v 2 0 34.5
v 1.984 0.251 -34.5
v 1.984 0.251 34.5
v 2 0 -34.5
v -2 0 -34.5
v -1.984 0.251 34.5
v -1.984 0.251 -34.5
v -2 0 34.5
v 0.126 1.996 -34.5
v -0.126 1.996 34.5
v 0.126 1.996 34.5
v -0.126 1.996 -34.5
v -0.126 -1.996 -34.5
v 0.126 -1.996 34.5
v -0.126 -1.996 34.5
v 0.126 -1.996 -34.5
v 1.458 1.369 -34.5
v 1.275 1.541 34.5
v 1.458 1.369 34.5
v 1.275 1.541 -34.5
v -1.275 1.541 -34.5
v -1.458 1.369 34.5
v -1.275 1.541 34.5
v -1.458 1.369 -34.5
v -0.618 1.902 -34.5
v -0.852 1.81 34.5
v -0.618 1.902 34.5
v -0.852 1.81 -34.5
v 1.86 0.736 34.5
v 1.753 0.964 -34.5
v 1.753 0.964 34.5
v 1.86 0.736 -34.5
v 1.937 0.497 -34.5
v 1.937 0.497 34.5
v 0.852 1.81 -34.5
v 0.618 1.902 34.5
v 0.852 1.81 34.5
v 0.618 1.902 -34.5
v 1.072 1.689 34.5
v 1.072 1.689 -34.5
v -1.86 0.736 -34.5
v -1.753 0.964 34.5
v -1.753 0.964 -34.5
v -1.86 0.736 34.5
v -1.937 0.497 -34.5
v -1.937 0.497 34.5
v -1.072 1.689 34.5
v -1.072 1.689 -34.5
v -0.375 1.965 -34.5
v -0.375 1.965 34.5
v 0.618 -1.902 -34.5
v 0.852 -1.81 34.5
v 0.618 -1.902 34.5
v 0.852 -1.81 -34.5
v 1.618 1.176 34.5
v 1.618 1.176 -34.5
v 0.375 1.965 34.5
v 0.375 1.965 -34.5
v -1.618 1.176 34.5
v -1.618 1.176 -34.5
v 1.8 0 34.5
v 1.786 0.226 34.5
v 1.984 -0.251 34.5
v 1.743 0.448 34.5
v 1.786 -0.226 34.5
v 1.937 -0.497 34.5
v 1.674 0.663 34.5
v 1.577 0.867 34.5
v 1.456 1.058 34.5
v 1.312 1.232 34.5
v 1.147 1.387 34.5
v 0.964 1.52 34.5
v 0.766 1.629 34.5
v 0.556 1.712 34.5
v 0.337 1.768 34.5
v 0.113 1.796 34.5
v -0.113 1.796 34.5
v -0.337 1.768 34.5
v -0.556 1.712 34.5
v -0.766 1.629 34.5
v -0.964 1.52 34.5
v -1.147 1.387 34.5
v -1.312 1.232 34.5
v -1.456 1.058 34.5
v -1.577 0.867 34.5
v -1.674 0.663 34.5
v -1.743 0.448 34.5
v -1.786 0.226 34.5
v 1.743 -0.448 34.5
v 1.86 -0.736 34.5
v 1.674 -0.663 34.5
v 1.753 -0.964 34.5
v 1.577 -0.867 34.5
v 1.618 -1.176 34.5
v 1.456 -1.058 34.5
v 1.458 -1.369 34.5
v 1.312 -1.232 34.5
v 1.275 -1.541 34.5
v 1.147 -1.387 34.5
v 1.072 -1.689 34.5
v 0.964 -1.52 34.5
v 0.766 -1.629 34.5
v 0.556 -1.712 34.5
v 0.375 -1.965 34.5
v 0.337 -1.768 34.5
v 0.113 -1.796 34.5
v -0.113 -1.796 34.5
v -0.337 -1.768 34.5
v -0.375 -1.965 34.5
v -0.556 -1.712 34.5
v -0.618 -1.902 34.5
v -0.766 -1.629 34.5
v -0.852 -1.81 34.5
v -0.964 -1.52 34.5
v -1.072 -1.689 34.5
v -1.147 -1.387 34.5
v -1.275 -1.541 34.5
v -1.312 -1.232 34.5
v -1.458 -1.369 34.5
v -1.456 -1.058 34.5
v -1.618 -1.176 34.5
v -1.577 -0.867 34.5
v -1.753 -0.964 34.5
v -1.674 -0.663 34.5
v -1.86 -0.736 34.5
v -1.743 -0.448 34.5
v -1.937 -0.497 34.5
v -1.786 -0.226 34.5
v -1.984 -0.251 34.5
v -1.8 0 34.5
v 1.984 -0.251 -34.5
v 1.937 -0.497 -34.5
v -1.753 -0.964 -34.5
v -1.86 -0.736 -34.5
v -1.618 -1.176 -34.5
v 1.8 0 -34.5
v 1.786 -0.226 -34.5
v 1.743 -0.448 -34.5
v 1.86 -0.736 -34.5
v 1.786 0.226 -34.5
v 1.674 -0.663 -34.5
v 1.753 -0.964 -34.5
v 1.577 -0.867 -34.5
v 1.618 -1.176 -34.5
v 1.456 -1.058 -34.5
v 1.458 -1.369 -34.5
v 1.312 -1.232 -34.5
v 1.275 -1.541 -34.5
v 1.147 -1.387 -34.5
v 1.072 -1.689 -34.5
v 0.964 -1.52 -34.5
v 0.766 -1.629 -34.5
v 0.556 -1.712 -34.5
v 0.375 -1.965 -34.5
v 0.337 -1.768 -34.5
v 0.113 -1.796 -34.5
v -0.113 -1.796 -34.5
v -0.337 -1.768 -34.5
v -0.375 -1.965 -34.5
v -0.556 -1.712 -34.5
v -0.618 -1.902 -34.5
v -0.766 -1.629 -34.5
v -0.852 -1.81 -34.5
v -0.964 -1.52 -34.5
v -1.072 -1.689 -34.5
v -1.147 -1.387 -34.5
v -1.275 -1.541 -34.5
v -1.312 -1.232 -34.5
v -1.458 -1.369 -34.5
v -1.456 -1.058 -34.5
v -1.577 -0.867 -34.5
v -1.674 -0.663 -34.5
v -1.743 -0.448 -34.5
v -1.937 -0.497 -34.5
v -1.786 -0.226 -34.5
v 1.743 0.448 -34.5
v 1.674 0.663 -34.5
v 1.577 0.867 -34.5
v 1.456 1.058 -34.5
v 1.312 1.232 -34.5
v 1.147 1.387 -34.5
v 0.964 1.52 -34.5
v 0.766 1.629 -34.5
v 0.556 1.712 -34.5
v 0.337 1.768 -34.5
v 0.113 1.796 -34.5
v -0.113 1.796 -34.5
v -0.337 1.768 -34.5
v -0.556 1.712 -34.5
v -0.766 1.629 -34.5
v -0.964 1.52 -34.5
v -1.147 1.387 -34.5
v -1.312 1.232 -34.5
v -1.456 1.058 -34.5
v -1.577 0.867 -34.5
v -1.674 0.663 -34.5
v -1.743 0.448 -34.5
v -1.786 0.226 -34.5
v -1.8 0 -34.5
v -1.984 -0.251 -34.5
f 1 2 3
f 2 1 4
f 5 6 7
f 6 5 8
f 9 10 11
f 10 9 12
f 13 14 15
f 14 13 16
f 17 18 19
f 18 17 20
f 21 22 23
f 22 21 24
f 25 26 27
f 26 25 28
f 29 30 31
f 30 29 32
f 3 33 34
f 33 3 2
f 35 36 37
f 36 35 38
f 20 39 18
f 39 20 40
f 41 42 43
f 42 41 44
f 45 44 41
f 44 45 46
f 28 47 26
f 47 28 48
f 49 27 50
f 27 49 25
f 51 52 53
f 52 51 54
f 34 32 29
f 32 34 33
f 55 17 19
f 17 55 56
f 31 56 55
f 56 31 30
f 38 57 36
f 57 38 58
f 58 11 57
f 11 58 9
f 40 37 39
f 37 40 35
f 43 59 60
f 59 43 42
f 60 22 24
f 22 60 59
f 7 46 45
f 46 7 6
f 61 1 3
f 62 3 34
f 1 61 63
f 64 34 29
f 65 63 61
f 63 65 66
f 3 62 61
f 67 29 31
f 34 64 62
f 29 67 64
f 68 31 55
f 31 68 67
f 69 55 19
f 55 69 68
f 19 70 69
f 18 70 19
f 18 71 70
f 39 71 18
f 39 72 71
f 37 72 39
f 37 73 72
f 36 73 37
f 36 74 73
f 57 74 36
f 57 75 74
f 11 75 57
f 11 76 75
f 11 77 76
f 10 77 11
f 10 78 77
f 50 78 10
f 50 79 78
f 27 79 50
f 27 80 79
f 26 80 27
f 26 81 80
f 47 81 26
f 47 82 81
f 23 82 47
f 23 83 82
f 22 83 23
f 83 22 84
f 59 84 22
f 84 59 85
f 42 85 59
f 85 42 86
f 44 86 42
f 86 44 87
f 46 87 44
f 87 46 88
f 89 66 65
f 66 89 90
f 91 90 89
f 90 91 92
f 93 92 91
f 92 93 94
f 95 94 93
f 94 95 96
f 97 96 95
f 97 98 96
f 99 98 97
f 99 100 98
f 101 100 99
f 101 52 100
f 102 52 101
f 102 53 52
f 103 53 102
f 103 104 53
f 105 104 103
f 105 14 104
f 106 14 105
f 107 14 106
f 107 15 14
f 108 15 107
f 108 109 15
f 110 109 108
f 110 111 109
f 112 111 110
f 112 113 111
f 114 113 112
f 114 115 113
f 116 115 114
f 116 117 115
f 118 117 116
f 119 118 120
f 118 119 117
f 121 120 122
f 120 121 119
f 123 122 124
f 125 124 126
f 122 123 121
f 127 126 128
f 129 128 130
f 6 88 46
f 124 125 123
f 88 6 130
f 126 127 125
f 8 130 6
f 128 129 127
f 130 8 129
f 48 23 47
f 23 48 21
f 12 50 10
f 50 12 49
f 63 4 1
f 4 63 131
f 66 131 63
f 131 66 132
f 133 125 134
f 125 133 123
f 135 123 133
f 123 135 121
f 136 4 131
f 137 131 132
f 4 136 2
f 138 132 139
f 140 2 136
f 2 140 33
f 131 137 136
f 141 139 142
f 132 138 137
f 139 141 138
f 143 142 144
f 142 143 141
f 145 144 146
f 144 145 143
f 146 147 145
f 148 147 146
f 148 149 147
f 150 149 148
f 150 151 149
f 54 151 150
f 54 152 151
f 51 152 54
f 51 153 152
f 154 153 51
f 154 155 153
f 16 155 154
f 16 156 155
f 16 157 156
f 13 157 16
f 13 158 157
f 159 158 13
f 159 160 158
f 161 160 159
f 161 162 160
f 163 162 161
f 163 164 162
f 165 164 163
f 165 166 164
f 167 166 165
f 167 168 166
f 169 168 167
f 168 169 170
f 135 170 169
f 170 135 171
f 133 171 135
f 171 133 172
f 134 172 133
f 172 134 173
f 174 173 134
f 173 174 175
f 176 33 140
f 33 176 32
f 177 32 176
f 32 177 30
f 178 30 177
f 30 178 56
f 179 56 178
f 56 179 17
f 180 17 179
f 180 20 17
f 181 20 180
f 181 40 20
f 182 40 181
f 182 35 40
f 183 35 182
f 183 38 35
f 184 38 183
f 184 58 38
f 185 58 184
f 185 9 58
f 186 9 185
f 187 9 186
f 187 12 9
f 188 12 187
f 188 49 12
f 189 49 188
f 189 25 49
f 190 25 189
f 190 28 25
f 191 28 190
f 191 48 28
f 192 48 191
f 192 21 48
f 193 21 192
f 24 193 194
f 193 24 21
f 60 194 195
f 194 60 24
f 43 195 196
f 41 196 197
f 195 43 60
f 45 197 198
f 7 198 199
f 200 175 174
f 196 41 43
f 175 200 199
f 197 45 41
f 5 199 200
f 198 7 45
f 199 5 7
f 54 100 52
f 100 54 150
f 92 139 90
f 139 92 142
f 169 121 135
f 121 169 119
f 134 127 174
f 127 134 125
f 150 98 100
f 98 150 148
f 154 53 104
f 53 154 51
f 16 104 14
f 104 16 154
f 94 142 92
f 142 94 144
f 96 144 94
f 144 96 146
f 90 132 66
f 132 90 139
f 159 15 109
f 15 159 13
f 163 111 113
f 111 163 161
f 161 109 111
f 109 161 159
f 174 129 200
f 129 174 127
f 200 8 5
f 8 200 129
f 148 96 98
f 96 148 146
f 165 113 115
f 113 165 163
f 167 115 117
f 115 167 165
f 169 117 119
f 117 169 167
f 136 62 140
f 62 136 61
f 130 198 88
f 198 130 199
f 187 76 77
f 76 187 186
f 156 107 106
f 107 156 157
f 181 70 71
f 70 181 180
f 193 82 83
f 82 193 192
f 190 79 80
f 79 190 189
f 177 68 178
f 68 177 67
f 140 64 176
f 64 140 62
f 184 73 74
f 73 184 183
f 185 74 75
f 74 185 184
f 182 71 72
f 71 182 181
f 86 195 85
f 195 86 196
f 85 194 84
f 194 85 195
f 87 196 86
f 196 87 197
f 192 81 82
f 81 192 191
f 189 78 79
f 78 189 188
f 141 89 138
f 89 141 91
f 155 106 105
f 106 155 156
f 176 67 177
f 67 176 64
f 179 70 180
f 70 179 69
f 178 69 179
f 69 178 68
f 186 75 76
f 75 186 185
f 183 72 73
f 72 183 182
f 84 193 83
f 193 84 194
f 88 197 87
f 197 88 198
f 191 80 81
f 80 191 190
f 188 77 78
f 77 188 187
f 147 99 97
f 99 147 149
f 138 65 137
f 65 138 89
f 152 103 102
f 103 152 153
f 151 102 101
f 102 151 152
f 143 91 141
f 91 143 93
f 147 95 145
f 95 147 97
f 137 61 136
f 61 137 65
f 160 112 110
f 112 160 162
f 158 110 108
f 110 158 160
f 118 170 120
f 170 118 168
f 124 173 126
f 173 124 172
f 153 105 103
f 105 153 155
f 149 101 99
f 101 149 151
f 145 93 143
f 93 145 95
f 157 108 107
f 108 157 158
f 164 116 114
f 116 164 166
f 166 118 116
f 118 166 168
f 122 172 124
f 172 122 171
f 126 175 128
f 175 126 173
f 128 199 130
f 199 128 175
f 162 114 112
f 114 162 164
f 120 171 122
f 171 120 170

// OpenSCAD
$fn = 50;


difference() {
	union() {
		translate(v = [0, 0, -34.5000000000]) {
			cylinder(h = 69, r = 2.0000000000);
		}
	}
	union() {
		translate(v = [0, 0, -100.0000000000]) {
			cylinder(h = 200, r = 1.8000000000);
		}
	}
}
